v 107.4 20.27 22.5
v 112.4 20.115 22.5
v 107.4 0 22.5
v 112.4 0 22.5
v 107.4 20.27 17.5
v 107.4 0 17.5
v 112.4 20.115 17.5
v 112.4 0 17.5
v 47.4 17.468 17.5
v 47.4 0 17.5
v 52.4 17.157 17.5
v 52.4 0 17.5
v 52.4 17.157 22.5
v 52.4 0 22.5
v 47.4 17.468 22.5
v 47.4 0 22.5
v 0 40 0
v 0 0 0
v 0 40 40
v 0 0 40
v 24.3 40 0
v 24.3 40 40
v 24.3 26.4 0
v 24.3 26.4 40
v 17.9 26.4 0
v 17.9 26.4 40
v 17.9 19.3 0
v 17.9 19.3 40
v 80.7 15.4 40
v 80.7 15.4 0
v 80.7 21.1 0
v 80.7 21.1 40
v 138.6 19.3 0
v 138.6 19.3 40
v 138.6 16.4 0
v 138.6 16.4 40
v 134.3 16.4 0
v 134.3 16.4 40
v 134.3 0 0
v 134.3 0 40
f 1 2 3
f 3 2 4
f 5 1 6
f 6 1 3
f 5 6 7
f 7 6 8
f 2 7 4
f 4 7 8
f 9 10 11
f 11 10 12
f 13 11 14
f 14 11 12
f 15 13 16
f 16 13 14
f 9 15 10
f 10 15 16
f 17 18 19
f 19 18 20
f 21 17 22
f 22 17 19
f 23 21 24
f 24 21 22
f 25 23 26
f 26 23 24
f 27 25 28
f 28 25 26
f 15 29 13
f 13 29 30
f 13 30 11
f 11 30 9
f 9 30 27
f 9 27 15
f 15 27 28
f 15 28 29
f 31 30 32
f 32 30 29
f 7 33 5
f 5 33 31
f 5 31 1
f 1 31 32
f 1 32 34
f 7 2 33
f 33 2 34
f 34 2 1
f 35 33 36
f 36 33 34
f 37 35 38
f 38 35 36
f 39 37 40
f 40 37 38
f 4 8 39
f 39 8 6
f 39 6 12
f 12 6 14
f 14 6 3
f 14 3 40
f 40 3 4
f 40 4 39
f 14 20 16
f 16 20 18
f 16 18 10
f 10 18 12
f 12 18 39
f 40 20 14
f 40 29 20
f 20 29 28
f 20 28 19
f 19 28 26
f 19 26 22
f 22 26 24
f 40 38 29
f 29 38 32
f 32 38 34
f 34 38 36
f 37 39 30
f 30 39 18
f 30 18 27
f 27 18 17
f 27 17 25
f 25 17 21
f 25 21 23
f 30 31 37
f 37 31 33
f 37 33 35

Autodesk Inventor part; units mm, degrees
ref_plane "YZ Plane" through (0, 0, 0) normal (1, 0, 0) x (0, 1, 0)
ref_plane "XZ Plane" through (0, 0, 0) normal (0, 1, 0) x (-1, 0, 0)
ref_plane "XY Plane" through (0, 0, 0) normal (0, 0, 1) x (1, 0, 0)
sketch "Boceto1" plane through (0, 0, 0) normal (0, 0, 1) x (1, 0, 0)
  line L0 (0, 0) -> (134.3, 0)
  line L1 (0, 0) -> (0, 40)
  line L2 (0, 40) -> (24.3, 40)
  line L3 (24.3, 40) -> (24.3, 26.4)
  line L4 (24.3, 26.4) -> (17.9, 26.4)
  line L5 (17.9, 26.4) -> (17.9, 19.3)
  line L6 (17.9, 19.3) -> (138.6, 19.3) construction
  line L7 (134.3, 0) -> (134.3, 16.4) construction
  line L8 (134.3, 0) -> (134.3, 16.4)
  line L9 (134.3, 16.4) -> (138.6, 16.4)
  line L10 (138.6, 16.4) -> (138.6, 19.3)
  line L11 (17.9, 19.3) -> (80.7, 19.3) construction
  line L12 (80.7, 19.3) -> (80.7, 21.1) construction
  line L13 (80.7, 21.1) -> (80.7, 15.4) construction
  line L14 (17.9, 19.3) -> (80.7, 15.4)
  line L15 (80.7, 15.4) -> (80.7, 21.1)
  line L16 (80.7, 21.1) -> (138.6, 19.3)
  dimension "d0" = 134.3
  dimension "d1" = 40
  dimension "d2" = 24.3
  dimension "d3" = 13.6
  dimension "d4" = 6.4
  dimension "d5" = 7.1
  dimension "d6" = 120.7
  dimension "d7" = 16.4
  dimension "d9" = 4.3
  dimension "d10" = 62.8
  dimension "d11" = 1.8
  dimension "d12" = 5.7
extrude "Extrusión1" add sketch "Boceto1" along normal blind 40
sketch "Boceto2" plane through (0, 0, 0) normal (0, -1, 0) x (1, 0, 0)
  line L0 (0, 0) -> (79.9, 0)
  line L1 (24.3, 0) -> (0, 0) projected
  line L2 (79.9, 0) -> (79.9, 20)
  line L3 (0, 0) -> (134.3, 0) projected
  line L4 (79.9, 0) -> (99.9, 0) construction
  line L5 (79.9, 20) -> (49.9, 20)
  line L6 (80.7, 0) -> (80.7, 40) projected
  line L7 (79.9, 20) -> (109.9, 20) construction
  line L8 (79.9, 20) -> (109.9, 20)
  line L9 (79.9, 20) -> (109.9, 20) construction
  line L10 (47.4, 17.5) -> (52.4, 17.5)
  line L11 (52.4, 17.5) -> (52.4, 22.5)
  line L12 (52.4, 22.5) -> (47.4, 22.5)
  line L13 (47.4, 22.5) -> (47.4, 17.5)
  line L14 (47.4, 17.5) -> (52.4, 22.5) construction
  line L15 (52.4, 17.5) -> (47.4, 22.5) construction
  line L16 (107.4, 17.5) -> (112.4, 17.5)
  line L17 (112.4, 17.5) -> (112.4, 22.5)
  line L18 (112.4, 22.5) -> (107.4, 22.5)
  line L19 (107.4, 22.5) -> (107.4, 17.5)
  line L20 (107.4, 17.5) -> (112.4, 22.5) construction
  line L21 (112.4, 17.5) -> (107.4, 22.5) construction
  dimension "d15" = 79.9
  dimension "d16" = 20
  dimension "d17" = 90
  dimension "d18" = 30
  dimension "d19" = 180
  dimension "d20" = 30
  dimension "d21" = 0
  dimension "d22" = 5
  dimension "d23" = 5
  dimension "d24" = 5
  dimension "d25" = 5
extrude "Extrusión2" cut sketch "Boceto2" against normal blind 40 contours L11 L10 L13 L12 | L19 L18 L17 L16
equation "\"d15\" = Largo_segundo_boceto"
equation "\"d22\" = Espesor_corte"
equation "\"d23\" = Espesor_corte"
equation "\"d24\" = Espesor_corte"
equation "\"d25\" = Espesor_corte"
equation "\"Correccion_rebaje\" = 5"
equation "\"Espesor_corte\" = 5"
equation "\"Espesor_detalle\" = 2.5"
equation "\"Largo_segundo_boceto\" = 79.9"
properties part number "Macho_parametrizado"
